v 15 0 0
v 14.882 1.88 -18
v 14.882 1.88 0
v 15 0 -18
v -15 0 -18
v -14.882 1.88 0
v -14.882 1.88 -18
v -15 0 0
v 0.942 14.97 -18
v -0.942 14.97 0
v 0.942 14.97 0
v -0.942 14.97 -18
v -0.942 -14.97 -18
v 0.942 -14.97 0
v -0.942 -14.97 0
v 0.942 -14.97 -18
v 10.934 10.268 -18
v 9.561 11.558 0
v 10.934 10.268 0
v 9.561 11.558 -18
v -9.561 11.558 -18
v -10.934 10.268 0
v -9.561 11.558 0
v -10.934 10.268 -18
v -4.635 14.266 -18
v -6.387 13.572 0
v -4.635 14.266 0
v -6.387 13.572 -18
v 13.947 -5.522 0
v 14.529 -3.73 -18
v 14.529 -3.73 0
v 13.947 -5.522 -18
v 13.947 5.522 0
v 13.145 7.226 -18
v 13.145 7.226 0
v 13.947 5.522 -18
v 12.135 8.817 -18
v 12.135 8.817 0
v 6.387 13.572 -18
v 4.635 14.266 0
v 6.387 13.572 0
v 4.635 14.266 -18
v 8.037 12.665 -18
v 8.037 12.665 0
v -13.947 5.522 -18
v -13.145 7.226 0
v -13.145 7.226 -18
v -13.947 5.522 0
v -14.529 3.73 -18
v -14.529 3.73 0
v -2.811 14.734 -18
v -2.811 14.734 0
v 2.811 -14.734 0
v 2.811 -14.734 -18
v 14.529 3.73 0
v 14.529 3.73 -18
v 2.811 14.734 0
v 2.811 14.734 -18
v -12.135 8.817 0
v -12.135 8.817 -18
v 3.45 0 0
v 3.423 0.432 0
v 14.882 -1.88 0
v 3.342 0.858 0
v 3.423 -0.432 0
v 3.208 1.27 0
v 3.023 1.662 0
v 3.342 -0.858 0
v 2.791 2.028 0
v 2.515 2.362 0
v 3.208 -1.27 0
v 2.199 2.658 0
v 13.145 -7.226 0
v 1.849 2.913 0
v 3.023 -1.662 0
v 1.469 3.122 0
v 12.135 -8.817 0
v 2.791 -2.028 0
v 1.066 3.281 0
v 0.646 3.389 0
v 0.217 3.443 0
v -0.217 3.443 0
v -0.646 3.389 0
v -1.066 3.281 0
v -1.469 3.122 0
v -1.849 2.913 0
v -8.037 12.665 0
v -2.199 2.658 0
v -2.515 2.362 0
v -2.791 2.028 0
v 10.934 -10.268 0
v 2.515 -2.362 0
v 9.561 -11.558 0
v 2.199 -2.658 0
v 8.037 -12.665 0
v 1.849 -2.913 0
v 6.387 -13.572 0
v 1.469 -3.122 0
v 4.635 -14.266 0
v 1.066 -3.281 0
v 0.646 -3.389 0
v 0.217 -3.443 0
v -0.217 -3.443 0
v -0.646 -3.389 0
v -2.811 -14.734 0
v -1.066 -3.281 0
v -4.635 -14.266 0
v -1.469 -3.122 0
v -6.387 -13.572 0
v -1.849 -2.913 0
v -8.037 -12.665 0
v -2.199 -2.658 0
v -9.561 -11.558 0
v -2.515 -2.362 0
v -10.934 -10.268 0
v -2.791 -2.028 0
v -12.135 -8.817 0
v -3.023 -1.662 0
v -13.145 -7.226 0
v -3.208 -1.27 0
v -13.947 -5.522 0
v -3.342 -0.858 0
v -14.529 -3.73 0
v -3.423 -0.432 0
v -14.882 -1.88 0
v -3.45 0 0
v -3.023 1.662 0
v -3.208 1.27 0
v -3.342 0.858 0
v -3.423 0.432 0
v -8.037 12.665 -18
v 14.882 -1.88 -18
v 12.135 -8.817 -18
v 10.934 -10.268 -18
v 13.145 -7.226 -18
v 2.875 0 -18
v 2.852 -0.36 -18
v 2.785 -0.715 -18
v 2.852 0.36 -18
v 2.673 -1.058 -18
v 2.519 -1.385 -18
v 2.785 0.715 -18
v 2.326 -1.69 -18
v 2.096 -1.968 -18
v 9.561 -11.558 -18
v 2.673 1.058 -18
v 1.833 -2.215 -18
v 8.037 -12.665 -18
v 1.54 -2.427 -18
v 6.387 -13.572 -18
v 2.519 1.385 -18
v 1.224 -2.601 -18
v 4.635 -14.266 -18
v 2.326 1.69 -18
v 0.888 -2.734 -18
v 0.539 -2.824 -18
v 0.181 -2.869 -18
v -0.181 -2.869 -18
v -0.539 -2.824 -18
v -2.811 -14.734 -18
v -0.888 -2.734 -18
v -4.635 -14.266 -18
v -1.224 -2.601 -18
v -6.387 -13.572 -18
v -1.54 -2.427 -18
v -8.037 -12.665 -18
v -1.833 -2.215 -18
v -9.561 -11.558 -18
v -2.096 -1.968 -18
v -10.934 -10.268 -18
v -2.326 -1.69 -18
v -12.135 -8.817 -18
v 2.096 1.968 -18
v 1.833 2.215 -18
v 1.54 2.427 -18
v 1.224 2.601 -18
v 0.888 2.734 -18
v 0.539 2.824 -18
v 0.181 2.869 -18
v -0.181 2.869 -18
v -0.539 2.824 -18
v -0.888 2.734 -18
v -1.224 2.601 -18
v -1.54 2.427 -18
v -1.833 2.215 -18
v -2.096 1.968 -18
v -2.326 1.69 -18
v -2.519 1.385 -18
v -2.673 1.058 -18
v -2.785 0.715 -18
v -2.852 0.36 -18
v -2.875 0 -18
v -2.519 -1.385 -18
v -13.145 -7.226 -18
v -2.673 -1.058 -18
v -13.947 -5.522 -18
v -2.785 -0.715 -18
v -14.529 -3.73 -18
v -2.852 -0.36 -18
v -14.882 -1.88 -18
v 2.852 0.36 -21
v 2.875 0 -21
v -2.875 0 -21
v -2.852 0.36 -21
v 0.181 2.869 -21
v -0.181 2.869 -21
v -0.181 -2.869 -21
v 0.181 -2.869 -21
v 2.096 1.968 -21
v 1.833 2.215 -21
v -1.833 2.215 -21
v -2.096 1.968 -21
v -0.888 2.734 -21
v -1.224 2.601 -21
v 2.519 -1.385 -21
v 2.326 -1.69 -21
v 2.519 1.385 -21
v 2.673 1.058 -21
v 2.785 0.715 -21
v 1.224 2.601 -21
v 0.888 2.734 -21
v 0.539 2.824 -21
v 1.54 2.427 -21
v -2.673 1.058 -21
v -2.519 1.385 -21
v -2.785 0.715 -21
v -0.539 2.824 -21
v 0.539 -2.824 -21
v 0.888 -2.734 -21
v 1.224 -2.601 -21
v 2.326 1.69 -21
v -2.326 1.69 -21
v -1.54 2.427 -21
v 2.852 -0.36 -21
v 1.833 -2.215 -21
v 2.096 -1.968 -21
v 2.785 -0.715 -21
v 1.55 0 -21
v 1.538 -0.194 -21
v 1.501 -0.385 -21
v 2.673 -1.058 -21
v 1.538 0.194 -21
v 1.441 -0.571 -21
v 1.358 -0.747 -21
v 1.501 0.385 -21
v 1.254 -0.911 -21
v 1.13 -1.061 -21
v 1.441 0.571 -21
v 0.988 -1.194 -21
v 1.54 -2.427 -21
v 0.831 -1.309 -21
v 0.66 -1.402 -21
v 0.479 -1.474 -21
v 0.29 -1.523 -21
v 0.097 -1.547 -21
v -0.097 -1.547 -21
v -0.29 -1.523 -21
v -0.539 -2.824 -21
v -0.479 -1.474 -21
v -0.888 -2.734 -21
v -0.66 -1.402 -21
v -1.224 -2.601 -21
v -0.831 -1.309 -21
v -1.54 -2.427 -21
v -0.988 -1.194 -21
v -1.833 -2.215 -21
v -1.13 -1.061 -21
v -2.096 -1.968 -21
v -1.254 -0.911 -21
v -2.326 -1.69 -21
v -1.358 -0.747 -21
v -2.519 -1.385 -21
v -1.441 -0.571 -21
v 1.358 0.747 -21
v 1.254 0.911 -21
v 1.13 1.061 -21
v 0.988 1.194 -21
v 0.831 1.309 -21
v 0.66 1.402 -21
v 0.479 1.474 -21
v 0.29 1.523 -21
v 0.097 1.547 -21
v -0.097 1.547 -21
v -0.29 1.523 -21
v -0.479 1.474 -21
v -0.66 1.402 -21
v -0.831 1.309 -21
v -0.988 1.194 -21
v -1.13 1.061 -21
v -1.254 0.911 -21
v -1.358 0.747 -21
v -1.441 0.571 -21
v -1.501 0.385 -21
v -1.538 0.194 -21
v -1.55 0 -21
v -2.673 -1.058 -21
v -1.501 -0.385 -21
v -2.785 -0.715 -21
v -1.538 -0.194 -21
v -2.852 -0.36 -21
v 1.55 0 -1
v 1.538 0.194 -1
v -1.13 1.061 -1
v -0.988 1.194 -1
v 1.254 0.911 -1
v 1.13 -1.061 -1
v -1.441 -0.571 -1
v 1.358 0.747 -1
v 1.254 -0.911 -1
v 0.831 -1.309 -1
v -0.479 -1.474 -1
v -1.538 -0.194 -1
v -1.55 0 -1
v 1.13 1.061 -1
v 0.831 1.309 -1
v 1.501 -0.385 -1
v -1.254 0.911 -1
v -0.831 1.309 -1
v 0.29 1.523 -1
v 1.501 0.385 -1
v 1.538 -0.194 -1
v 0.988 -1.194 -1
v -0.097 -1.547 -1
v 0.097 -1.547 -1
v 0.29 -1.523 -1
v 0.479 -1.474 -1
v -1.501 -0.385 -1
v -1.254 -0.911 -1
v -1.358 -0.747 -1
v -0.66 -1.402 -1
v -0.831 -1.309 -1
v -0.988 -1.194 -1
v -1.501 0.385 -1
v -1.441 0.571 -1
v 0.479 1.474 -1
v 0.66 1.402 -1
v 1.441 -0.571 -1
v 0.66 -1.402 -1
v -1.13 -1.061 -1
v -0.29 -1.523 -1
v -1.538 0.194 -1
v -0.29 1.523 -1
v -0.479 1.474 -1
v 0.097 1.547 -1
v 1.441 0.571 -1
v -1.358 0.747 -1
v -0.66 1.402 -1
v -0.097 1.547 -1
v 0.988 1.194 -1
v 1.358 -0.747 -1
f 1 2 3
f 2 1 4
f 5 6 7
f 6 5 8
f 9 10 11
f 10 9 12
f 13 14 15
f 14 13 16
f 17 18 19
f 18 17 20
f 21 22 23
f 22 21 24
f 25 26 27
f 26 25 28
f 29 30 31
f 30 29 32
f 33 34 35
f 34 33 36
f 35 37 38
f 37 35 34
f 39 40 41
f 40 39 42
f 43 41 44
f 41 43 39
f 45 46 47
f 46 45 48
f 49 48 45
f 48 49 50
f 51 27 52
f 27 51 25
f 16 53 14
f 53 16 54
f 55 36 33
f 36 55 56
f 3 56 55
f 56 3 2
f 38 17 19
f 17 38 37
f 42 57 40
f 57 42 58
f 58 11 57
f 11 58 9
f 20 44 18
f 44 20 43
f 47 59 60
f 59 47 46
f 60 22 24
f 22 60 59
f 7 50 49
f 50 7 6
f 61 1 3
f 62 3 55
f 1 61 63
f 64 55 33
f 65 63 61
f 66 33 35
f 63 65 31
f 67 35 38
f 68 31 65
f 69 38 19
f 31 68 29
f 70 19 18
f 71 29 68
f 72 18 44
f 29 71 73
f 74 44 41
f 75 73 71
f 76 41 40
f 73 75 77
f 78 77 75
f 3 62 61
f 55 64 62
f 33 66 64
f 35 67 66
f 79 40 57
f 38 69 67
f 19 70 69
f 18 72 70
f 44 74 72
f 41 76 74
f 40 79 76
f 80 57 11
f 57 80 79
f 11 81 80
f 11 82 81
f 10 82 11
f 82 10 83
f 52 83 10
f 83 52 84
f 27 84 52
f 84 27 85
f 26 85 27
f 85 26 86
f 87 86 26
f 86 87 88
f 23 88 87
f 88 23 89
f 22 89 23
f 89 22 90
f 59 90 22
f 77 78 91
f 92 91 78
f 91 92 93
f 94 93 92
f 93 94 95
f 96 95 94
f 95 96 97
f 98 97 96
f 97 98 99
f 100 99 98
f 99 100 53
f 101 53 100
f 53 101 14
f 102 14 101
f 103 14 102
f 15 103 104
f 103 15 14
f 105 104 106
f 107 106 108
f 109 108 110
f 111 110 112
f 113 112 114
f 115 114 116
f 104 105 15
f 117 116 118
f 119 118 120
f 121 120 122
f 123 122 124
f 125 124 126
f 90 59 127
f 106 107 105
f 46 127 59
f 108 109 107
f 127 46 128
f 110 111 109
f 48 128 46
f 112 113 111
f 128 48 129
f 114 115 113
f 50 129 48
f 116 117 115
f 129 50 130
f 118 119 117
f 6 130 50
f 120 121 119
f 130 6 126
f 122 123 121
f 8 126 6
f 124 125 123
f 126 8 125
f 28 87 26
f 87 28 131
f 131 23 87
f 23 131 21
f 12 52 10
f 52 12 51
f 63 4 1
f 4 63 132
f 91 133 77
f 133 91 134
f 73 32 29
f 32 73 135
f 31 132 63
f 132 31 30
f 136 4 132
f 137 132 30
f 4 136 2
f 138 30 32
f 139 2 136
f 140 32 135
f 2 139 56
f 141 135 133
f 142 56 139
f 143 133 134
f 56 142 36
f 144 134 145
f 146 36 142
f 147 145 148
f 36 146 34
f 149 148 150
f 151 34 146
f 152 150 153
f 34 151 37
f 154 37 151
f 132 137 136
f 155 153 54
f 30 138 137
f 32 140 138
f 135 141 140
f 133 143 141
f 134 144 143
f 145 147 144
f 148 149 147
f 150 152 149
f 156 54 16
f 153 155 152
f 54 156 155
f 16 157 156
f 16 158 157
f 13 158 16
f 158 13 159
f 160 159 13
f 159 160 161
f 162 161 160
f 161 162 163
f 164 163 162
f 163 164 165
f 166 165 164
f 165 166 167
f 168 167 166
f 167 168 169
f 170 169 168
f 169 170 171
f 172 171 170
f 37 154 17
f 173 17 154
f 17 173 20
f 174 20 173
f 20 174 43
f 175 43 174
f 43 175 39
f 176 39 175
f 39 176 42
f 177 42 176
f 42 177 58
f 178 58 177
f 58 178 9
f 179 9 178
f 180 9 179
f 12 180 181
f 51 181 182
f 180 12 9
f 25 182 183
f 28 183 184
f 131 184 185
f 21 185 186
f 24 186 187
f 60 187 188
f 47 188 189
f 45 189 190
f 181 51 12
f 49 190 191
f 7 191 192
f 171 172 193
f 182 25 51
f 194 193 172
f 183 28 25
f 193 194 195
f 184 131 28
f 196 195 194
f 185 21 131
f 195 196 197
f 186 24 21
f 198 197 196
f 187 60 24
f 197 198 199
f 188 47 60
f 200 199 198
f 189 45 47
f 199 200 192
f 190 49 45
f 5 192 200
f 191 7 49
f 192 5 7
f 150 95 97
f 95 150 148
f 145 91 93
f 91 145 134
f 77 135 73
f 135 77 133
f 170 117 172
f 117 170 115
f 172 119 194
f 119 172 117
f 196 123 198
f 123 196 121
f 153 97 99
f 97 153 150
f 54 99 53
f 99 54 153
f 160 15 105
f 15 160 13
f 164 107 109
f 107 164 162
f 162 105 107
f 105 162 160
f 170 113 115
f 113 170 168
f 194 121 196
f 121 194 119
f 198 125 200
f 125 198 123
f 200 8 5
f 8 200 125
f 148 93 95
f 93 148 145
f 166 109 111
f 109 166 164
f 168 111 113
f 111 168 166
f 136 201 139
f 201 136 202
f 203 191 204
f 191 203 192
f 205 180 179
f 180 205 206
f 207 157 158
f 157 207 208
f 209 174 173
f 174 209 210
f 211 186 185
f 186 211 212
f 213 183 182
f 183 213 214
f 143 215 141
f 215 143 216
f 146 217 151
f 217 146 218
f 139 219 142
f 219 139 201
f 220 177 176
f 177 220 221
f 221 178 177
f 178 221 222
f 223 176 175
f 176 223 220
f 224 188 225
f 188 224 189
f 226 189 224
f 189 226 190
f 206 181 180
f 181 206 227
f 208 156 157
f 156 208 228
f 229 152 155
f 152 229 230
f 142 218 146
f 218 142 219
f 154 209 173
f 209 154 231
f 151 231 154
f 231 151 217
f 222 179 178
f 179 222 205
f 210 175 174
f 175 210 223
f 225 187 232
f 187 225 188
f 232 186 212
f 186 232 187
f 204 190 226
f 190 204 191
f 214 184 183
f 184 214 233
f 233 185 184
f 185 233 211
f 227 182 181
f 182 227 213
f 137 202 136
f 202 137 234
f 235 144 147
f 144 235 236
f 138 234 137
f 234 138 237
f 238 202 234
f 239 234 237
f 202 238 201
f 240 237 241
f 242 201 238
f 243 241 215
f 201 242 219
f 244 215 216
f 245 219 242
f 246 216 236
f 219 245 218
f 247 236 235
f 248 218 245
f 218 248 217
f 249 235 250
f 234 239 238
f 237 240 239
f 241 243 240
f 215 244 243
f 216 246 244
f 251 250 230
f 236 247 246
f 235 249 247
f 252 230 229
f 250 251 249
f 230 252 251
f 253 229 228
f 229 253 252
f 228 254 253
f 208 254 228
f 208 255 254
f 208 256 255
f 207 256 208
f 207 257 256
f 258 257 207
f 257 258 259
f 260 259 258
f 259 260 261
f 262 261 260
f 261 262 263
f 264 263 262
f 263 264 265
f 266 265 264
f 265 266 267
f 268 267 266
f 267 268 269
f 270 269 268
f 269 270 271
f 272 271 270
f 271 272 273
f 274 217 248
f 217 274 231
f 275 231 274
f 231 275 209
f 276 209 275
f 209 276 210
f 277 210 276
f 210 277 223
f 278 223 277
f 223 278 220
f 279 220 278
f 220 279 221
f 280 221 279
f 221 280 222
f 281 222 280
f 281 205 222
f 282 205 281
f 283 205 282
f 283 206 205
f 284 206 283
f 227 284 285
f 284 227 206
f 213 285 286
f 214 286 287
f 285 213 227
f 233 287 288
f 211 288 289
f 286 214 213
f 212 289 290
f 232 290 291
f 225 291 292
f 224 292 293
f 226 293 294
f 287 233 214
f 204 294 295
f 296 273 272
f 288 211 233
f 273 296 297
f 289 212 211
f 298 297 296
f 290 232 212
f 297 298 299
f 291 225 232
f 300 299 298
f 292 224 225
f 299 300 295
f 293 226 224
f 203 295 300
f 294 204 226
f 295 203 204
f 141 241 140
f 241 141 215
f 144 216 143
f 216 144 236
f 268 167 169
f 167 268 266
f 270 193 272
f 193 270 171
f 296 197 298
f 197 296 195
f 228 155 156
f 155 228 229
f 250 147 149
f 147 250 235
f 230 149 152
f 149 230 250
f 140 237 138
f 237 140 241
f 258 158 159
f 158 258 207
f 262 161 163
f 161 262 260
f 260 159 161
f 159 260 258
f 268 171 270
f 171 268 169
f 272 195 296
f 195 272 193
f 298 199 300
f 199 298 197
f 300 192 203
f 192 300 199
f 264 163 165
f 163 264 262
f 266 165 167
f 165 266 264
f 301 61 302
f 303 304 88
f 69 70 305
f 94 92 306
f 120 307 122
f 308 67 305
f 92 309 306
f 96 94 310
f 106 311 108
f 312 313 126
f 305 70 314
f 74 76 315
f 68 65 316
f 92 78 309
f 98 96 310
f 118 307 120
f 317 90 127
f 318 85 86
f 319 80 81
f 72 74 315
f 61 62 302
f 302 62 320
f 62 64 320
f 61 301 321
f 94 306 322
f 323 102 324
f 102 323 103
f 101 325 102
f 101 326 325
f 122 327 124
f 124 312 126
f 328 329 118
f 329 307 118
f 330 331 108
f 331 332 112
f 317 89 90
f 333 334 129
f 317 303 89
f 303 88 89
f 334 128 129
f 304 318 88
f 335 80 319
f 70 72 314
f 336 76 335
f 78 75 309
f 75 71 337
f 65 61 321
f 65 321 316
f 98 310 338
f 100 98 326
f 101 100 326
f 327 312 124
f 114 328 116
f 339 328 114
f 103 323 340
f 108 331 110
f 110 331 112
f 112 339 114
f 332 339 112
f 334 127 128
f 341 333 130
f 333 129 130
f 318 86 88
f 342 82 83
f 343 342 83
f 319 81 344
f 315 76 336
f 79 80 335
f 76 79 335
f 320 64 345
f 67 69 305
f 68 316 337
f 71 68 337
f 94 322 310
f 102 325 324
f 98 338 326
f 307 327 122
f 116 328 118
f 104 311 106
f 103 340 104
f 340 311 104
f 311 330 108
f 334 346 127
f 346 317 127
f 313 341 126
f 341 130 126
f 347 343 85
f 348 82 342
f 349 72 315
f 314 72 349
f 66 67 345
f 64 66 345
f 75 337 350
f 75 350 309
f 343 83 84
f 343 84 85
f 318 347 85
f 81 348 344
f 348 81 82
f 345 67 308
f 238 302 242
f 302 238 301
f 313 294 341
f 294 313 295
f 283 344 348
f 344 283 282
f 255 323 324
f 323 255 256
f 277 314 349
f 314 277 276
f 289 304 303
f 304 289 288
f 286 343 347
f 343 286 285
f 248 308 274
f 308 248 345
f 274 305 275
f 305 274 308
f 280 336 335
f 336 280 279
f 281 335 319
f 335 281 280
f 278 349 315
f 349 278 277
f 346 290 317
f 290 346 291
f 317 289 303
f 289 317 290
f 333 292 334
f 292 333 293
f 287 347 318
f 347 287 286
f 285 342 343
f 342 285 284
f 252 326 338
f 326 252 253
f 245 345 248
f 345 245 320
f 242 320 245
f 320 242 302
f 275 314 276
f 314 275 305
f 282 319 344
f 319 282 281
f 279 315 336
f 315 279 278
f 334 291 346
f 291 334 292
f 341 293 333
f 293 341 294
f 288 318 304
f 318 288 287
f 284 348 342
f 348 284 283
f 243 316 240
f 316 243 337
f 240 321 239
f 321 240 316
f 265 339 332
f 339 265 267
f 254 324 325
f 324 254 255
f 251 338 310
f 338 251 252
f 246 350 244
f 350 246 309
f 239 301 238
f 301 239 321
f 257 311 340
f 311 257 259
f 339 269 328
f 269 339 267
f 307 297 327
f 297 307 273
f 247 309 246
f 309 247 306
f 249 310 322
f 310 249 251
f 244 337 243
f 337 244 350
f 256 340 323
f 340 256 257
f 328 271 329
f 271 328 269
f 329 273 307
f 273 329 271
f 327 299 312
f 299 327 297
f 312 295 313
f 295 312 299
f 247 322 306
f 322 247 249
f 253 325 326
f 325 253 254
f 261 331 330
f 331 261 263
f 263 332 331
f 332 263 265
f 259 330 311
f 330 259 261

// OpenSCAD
$fn = 50;

difference() {
	union() {
		translate(v = [0, 0, -18.0]) {
			cylinder(h = 18, r = 15.0);
		}
		#translate(v = [0, 0, -21.0]) {
			cylinder(h = 21, r = 2.875);
		}
	}
	union() {
		translate(v = [0, 0, 0]) {
			rotate(a = [0, 0, 0]) {
				difference() {
					union() {
						translate(v = [0, 0, -21.0]) {
							cylinder(h = 21, r = 1.25);
						}
						translate(v = [0, 0, -1.0]) {
							cylinder(h = 1.0, r1 = 1.55, r2 = 3.45);
						}
						translate(v = [0, 0, -21.0]) {
							cylinder(h = 21, r = 1.55);
						}
						translate(v = [0, 0, -21.0]) {
							cylinder(h = 21, r = 1.25);
						}
					}
					union();
				}
			}
		}
	}
}
